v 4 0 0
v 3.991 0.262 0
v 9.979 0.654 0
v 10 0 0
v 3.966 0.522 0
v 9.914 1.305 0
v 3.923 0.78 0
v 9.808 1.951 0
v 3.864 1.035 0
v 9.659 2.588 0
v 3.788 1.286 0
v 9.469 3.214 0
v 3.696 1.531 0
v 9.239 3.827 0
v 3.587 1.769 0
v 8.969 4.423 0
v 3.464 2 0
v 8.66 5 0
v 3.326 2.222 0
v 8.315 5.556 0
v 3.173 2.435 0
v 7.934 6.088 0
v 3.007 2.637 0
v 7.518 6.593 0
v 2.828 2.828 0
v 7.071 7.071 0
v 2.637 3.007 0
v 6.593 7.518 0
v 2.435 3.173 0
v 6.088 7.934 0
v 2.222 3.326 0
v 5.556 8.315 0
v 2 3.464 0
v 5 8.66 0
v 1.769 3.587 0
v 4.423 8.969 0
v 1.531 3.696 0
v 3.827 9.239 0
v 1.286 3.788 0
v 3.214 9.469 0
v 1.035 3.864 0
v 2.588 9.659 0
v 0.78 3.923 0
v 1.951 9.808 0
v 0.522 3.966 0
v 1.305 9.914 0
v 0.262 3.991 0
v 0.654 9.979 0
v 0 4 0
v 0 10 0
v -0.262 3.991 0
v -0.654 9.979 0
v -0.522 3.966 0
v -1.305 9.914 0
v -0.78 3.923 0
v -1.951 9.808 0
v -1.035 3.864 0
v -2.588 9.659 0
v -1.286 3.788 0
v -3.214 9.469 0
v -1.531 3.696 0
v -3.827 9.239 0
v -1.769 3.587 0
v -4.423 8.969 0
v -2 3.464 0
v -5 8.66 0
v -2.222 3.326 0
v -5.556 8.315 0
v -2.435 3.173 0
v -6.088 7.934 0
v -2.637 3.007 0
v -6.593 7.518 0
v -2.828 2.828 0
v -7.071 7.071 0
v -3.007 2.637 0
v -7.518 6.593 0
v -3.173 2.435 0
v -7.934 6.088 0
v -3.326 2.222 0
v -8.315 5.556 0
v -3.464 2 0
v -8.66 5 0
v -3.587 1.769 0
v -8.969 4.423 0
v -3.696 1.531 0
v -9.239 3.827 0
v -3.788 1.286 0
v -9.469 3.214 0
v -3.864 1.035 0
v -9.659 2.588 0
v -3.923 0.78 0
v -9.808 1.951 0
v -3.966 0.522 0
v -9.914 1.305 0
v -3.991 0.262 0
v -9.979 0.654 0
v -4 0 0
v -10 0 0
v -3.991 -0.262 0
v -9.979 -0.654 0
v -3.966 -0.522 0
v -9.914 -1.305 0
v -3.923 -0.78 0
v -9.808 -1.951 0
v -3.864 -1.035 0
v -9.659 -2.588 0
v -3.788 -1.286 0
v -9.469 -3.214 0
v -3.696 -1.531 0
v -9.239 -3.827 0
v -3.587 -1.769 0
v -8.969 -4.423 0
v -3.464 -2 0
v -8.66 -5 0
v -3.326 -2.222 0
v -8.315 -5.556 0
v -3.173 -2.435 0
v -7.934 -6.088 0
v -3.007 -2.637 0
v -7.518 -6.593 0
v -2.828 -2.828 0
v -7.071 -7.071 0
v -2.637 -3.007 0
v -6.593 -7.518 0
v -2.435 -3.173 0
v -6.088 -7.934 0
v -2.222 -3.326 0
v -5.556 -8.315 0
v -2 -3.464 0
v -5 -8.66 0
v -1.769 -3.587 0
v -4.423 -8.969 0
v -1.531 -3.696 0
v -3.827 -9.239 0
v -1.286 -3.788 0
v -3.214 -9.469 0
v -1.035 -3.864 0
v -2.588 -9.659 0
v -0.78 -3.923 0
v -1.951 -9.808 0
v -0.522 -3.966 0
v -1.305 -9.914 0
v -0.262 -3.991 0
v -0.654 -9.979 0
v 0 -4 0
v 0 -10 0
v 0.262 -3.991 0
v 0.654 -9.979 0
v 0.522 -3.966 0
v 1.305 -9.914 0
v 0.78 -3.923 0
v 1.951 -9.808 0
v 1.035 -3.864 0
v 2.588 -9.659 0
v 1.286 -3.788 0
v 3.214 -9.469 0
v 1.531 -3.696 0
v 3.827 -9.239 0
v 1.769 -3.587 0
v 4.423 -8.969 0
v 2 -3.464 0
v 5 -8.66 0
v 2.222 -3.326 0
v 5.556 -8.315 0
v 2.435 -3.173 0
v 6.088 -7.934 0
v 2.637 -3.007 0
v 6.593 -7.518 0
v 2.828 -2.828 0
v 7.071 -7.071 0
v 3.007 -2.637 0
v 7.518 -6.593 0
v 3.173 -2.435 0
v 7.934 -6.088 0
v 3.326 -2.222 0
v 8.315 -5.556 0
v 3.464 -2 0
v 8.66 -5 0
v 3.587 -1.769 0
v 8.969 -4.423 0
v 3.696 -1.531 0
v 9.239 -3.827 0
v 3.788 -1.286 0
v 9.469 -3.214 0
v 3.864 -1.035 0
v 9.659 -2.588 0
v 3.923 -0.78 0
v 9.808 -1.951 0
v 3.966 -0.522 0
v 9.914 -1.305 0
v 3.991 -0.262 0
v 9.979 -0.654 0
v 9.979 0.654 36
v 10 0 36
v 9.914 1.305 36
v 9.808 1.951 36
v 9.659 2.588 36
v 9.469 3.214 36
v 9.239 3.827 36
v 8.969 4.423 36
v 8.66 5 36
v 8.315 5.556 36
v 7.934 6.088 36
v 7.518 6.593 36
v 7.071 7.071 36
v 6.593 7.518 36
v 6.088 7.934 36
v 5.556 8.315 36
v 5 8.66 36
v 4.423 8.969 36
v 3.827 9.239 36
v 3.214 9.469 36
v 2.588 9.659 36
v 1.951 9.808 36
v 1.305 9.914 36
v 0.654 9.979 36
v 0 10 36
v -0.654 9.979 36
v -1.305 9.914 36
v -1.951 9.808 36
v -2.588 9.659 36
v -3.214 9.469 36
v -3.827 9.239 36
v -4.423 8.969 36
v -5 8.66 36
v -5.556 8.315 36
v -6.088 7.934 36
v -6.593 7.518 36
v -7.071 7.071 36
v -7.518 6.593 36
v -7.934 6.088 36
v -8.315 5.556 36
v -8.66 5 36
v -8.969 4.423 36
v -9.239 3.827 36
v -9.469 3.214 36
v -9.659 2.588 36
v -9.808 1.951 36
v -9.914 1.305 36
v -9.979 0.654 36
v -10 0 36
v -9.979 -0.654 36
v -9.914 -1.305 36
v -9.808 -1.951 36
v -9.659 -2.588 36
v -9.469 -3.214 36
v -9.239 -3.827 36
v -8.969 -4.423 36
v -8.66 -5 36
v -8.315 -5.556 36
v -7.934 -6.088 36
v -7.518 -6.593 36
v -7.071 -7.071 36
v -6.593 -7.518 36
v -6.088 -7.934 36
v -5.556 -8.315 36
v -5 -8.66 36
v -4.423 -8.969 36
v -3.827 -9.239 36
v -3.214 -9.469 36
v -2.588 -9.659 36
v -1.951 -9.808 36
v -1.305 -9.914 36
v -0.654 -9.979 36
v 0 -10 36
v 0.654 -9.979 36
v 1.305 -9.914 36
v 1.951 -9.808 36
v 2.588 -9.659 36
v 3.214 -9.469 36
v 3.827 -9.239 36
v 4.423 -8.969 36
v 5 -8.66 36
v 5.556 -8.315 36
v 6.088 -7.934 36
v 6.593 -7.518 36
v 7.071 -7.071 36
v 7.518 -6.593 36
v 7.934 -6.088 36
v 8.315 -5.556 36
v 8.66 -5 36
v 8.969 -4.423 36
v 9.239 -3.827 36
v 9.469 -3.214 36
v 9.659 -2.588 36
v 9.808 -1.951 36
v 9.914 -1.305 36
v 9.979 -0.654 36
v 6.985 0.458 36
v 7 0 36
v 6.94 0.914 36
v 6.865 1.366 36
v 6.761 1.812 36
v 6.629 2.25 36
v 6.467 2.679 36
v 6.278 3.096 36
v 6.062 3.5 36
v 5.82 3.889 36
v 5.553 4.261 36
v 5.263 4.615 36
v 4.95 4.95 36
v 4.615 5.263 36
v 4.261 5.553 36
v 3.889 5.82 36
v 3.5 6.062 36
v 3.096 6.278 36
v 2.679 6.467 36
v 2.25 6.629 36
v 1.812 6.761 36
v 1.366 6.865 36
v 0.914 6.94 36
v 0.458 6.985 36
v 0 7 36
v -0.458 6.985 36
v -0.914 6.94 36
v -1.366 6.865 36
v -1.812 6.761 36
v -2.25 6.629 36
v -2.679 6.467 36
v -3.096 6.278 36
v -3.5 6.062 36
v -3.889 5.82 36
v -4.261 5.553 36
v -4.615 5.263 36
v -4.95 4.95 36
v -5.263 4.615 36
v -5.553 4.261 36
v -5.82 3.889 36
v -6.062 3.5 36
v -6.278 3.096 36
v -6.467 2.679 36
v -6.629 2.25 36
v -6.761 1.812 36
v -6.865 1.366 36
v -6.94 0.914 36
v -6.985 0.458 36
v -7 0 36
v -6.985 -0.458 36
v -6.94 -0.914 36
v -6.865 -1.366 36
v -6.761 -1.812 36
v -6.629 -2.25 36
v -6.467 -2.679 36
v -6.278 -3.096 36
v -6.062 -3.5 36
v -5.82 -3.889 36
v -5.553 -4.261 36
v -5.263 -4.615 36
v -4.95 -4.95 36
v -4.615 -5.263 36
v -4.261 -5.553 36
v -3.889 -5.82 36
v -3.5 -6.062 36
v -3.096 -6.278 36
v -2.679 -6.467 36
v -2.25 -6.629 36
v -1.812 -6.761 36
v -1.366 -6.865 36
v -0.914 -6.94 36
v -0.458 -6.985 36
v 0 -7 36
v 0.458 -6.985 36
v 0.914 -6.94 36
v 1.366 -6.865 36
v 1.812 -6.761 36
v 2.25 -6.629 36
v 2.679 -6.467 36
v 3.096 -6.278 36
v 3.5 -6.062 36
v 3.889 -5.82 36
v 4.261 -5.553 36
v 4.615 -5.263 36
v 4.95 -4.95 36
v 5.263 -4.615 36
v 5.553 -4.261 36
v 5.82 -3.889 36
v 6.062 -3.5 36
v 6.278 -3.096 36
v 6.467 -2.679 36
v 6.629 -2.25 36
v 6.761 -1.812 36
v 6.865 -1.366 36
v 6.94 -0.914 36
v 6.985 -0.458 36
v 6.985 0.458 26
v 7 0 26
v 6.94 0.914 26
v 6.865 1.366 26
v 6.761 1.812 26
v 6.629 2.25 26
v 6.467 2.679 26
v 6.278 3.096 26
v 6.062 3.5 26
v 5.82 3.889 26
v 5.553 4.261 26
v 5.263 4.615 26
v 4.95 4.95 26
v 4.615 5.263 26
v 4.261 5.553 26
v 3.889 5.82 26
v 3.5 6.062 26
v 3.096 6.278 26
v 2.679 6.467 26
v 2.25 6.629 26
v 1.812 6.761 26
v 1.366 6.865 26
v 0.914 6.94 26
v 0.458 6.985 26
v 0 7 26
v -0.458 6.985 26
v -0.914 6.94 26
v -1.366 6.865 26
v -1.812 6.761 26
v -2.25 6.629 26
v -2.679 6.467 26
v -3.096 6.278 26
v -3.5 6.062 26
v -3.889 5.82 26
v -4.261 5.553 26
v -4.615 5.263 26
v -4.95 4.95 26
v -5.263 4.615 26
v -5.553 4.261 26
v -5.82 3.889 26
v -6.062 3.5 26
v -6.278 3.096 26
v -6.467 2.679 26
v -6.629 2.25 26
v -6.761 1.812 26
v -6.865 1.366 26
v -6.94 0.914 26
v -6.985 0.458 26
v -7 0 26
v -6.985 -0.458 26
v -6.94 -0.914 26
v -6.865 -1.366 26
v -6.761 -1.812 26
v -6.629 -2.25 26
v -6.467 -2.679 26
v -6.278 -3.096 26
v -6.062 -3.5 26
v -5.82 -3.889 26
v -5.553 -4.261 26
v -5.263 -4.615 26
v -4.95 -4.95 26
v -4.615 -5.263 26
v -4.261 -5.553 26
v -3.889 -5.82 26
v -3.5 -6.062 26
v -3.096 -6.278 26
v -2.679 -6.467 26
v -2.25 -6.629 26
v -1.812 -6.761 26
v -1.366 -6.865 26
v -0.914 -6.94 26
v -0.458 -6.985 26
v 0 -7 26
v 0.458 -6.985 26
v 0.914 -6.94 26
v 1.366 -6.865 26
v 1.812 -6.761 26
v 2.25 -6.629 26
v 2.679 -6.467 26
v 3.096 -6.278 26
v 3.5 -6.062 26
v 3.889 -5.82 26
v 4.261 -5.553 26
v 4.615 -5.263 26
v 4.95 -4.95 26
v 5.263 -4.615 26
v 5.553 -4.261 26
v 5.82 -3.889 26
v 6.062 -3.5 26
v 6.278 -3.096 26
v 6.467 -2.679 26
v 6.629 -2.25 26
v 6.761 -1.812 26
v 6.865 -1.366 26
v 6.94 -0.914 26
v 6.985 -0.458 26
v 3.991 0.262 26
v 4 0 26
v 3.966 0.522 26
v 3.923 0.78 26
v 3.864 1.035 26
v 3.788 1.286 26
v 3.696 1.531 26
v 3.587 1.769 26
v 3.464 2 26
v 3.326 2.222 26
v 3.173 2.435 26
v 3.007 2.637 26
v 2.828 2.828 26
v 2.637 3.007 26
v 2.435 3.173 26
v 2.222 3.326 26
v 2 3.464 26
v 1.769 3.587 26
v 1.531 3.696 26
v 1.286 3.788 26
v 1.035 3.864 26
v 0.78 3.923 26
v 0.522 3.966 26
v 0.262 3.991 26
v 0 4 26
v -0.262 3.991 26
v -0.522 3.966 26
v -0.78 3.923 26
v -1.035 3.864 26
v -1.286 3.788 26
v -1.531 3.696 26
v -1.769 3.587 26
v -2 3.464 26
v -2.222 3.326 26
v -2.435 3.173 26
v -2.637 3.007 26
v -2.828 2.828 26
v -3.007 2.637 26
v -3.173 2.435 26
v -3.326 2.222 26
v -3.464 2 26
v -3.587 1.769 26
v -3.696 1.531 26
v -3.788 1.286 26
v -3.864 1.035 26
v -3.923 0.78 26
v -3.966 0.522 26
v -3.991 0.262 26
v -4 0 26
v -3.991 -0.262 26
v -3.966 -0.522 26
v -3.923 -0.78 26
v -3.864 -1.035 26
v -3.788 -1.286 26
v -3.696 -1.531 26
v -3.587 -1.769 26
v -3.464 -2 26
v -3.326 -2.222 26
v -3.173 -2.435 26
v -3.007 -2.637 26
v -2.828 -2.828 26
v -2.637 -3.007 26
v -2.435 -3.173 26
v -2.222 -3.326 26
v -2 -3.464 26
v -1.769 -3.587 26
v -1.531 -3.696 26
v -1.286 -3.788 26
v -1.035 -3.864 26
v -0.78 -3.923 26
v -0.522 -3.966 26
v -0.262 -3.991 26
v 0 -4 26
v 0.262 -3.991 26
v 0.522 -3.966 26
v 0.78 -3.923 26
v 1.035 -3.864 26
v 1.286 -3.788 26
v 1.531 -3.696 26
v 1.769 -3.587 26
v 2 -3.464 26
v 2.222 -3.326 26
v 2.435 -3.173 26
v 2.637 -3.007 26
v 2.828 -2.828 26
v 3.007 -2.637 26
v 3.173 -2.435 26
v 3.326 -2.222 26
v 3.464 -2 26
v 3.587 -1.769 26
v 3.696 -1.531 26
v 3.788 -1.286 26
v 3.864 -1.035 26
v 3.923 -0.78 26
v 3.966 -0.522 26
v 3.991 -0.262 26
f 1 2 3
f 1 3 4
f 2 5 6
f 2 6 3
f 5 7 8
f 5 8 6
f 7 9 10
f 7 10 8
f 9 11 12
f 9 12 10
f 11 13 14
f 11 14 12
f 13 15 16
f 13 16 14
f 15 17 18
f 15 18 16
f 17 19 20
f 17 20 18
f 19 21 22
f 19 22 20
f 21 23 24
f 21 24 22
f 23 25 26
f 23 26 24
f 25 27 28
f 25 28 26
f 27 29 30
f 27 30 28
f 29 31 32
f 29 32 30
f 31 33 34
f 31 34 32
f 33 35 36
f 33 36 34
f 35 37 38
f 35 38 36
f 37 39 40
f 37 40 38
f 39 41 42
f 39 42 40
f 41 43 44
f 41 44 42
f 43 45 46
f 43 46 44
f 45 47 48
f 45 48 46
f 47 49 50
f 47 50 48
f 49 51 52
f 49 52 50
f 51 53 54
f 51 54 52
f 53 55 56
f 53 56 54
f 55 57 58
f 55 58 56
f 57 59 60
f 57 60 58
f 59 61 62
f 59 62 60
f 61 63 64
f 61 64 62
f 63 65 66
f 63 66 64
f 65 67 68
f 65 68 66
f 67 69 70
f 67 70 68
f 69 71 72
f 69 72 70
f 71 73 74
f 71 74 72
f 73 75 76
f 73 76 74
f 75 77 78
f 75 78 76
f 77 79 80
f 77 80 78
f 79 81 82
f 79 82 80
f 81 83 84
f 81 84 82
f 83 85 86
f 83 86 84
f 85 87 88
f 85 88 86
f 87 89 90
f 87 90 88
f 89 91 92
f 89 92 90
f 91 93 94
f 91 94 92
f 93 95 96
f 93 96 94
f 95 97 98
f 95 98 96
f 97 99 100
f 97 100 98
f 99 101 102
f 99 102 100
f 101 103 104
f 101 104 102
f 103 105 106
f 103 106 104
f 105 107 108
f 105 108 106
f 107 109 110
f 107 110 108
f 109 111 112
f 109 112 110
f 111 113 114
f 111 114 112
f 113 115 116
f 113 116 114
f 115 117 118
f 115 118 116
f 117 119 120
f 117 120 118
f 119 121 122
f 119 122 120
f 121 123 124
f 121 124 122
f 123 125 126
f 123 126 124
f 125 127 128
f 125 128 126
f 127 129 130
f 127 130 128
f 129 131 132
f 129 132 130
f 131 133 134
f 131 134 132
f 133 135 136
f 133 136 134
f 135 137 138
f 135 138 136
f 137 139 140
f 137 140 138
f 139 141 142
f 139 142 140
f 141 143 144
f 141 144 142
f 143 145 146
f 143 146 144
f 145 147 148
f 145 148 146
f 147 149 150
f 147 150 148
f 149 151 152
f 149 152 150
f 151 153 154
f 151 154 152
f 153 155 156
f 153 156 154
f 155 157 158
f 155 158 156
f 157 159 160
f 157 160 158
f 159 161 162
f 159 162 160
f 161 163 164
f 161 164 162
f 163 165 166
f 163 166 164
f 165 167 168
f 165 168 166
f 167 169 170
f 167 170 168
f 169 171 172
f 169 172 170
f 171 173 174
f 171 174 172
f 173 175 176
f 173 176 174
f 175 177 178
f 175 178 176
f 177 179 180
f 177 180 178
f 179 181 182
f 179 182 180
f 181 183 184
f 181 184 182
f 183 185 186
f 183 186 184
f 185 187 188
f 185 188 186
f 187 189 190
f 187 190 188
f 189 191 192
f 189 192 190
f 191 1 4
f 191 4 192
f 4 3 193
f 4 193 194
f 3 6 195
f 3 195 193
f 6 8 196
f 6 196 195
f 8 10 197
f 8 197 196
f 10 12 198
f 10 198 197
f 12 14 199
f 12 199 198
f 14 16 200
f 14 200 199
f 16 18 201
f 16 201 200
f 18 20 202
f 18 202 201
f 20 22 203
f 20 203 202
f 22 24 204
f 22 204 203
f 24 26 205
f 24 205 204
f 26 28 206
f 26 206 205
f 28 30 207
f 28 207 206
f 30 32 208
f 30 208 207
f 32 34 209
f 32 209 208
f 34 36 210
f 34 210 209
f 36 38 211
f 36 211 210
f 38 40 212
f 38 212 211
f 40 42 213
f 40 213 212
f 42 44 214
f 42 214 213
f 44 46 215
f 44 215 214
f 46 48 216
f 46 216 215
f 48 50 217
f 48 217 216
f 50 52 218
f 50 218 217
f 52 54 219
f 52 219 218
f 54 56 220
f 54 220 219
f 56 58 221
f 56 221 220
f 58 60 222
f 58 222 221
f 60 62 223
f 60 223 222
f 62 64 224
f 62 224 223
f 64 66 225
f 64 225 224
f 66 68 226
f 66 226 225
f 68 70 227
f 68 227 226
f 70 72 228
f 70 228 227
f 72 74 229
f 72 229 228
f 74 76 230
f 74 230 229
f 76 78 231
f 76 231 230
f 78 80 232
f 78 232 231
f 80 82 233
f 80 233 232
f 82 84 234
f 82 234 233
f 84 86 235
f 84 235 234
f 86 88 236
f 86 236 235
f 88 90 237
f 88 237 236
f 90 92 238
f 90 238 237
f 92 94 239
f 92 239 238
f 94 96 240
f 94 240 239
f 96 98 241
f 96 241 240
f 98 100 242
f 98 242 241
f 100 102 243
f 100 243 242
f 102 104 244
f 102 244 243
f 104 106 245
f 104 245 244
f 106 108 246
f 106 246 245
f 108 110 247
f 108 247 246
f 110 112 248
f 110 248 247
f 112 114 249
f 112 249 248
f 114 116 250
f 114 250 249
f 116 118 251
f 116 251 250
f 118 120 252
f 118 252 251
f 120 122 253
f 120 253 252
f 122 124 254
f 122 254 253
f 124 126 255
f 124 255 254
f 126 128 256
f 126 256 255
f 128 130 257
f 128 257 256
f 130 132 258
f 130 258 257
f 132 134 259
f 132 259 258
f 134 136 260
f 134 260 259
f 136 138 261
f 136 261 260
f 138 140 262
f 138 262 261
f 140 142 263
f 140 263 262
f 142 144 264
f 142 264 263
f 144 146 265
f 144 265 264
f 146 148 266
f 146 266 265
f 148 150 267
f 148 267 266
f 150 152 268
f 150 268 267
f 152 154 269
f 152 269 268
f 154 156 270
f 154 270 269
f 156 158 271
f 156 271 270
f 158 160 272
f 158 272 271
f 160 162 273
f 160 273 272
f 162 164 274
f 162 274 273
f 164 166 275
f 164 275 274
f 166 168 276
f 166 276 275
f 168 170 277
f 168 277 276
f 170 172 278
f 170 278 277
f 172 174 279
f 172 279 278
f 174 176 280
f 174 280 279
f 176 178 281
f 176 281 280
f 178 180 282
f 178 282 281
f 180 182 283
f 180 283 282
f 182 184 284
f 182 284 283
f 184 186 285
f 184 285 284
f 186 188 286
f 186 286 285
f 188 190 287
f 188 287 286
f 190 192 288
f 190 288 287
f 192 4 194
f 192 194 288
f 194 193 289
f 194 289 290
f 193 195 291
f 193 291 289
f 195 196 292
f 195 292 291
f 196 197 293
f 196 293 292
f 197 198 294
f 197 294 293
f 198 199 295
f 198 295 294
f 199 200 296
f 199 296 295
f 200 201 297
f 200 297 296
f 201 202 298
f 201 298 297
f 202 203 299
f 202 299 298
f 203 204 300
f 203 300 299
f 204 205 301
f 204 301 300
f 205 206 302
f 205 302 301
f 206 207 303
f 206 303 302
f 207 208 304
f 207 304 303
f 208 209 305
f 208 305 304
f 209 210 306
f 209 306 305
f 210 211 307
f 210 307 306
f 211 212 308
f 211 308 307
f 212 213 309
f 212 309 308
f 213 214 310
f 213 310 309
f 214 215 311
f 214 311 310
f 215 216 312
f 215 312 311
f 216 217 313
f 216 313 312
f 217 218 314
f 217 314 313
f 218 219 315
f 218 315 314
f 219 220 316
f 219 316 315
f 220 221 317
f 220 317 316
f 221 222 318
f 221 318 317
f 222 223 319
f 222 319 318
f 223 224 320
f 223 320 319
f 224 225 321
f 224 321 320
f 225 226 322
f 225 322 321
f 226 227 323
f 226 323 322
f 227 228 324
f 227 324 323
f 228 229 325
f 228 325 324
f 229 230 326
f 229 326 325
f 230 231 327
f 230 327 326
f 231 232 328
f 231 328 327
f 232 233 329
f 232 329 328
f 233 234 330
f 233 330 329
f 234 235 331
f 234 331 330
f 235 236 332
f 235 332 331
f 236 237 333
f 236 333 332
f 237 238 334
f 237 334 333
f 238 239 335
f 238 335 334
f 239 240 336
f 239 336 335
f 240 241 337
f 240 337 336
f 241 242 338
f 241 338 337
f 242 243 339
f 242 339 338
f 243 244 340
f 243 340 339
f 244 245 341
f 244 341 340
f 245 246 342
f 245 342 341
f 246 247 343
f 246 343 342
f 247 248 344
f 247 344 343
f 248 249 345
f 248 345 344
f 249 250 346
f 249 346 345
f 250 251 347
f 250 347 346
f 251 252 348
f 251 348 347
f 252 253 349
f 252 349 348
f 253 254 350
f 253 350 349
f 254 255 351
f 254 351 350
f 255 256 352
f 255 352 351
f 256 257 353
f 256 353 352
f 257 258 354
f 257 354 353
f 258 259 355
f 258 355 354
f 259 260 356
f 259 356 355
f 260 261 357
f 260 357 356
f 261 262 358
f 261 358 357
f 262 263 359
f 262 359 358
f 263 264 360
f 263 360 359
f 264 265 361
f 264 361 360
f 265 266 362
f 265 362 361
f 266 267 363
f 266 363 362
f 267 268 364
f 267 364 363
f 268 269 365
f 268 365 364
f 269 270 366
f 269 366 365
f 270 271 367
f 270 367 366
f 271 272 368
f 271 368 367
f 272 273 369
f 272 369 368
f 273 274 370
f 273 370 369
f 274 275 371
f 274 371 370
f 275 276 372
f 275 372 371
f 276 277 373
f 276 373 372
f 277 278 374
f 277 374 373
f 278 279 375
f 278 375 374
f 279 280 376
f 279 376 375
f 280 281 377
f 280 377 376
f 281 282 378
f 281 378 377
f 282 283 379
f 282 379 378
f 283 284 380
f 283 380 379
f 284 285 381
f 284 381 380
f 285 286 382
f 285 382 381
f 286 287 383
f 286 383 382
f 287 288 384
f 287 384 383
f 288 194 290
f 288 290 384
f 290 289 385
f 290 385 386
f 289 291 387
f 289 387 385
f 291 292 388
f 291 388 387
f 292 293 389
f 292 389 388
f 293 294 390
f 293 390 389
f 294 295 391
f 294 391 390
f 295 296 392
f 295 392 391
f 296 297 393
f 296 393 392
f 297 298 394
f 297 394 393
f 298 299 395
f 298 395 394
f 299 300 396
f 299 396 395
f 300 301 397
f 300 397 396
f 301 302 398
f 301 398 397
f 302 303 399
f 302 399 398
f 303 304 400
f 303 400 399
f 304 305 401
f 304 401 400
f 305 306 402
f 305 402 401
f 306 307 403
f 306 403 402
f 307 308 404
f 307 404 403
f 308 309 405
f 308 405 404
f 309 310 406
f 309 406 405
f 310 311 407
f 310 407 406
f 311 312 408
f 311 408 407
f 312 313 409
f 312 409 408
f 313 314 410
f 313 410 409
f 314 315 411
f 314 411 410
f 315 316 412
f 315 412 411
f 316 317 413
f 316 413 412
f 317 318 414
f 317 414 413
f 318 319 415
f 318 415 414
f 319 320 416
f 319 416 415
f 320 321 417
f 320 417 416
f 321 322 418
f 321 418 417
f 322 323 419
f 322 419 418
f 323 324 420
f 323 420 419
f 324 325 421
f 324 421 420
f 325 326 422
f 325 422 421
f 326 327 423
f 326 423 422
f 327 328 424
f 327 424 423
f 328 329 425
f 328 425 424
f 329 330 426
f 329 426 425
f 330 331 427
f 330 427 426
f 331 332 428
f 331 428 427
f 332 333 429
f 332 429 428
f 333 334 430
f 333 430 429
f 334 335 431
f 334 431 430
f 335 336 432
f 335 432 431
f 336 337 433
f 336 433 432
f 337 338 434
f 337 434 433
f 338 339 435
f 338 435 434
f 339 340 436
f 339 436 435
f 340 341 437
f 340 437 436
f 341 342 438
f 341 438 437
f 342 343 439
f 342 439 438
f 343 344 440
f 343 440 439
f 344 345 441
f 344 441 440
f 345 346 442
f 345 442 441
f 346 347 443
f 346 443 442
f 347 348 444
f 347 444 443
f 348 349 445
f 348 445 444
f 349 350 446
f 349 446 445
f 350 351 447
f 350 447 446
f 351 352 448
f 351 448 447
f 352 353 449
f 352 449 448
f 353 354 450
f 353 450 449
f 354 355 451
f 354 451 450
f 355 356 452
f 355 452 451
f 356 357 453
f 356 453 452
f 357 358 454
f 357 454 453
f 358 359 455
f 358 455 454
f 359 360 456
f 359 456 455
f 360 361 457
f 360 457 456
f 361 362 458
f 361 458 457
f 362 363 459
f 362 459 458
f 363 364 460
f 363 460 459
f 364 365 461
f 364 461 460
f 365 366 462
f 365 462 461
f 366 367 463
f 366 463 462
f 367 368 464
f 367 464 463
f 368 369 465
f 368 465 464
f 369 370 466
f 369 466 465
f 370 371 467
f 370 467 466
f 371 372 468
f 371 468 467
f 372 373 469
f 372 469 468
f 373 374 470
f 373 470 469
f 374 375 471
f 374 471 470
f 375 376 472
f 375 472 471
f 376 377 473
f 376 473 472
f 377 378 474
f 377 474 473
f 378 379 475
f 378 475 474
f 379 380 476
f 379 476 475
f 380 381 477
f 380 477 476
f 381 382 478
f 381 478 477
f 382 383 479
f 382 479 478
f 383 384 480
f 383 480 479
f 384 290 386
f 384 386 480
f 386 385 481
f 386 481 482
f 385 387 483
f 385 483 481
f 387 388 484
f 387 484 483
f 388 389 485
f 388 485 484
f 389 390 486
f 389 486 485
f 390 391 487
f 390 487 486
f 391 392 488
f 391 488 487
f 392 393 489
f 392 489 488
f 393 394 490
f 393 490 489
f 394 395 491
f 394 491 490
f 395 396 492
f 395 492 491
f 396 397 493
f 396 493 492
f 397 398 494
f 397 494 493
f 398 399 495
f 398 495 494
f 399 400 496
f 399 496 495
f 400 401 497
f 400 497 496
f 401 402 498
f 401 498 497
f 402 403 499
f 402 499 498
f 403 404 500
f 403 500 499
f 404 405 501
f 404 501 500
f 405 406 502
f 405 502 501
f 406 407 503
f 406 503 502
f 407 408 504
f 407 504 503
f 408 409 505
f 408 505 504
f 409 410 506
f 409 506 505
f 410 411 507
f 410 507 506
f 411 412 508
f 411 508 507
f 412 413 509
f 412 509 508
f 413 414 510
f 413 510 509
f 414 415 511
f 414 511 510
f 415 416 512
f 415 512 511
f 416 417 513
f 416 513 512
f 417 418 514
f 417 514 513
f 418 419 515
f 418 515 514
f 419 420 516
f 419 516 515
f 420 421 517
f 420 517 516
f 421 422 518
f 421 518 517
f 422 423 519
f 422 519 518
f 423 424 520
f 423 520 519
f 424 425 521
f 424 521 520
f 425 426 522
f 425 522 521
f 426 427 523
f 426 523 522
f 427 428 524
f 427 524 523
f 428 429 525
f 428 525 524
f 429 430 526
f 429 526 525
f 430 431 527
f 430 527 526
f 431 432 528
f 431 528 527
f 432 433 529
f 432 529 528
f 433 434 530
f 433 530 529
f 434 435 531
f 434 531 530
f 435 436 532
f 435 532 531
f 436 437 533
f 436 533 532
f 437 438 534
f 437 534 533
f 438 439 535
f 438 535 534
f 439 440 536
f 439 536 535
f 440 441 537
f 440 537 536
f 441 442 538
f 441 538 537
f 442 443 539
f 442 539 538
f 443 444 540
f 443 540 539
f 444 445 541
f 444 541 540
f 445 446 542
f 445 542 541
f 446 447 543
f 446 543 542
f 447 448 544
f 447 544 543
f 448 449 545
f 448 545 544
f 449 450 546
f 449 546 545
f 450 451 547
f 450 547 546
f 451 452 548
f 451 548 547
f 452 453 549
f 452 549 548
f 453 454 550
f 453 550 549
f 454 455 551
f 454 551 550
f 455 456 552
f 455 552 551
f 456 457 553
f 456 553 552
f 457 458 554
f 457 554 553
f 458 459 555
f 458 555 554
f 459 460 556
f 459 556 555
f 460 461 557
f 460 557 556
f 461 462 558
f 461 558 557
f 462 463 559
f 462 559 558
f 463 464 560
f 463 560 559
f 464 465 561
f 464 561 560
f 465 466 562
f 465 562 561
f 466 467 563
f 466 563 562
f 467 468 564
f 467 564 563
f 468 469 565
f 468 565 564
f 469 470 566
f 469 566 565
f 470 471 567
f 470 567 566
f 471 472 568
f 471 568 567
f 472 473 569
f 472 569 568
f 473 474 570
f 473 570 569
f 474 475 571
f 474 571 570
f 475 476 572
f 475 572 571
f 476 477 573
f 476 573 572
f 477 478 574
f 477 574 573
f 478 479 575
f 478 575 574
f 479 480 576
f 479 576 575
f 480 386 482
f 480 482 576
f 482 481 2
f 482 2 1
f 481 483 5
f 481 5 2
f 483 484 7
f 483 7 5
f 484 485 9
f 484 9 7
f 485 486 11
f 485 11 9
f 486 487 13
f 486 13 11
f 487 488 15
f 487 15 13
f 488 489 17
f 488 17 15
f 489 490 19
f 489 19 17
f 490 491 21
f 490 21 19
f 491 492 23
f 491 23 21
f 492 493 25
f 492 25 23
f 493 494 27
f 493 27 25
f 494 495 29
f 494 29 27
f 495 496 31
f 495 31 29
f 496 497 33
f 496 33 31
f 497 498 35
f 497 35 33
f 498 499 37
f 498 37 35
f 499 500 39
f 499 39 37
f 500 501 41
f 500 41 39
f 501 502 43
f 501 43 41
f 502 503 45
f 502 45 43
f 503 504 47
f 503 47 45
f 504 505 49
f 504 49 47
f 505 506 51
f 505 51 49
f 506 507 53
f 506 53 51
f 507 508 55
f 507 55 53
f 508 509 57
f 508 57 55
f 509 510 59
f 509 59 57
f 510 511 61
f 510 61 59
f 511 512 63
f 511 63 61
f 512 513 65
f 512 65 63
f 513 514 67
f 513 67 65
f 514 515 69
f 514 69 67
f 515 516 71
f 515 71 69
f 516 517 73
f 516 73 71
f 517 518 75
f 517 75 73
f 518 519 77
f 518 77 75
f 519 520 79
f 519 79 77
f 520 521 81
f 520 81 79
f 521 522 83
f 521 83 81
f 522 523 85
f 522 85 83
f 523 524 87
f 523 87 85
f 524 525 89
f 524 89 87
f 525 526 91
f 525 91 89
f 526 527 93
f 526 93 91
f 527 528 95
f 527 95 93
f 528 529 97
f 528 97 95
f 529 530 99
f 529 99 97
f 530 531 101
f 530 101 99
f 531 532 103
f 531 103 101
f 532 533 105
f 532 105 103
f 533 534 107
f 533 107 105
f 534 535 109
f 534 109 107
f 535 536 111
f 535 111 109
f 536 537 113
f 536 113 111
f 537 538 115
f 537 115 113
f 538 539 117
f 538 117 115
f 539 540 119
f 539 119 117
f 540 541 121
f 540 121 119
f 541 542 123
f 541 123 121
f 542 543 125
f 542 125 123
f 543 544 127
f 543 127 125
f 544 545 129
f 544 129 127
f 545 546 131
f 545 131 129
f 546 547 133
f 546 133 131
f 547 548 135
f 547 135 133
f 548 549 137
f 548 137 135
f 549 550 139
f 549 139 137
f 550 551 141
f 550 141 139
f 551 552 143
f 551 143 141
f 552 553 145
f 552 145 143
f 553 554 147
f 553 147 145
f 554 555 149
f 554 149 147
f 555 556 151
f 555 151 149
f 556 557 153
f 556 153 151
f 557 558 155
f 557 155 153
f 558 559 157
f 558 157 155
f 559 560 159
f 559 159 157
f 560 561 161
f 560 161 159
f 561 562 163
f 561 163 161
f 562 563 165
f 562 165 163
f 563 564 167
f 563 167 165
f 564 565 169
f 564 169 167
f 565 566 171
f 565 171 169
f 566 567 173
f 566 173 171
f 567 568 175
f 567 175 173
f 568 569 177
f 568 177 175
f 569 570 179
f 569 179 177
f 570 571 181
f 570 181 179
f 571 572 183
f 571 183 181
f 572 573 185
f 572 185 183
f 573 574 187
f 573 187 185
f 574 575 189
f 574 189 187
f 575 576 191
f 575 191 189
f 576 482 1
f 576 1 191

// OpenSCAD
// Original MechIntel educational model. CC0-1.0. Units: mm.
// Not a standardized or load-rated component.
$fn=96;
// Section points: [radius, height], mm. Edit to change the profile.
section=[[4, 0], [10, 0], [10, 36], [7, 36], [7, 26], [4, 26]];
rotate_extrude($fn=96) polygon(points=section);
